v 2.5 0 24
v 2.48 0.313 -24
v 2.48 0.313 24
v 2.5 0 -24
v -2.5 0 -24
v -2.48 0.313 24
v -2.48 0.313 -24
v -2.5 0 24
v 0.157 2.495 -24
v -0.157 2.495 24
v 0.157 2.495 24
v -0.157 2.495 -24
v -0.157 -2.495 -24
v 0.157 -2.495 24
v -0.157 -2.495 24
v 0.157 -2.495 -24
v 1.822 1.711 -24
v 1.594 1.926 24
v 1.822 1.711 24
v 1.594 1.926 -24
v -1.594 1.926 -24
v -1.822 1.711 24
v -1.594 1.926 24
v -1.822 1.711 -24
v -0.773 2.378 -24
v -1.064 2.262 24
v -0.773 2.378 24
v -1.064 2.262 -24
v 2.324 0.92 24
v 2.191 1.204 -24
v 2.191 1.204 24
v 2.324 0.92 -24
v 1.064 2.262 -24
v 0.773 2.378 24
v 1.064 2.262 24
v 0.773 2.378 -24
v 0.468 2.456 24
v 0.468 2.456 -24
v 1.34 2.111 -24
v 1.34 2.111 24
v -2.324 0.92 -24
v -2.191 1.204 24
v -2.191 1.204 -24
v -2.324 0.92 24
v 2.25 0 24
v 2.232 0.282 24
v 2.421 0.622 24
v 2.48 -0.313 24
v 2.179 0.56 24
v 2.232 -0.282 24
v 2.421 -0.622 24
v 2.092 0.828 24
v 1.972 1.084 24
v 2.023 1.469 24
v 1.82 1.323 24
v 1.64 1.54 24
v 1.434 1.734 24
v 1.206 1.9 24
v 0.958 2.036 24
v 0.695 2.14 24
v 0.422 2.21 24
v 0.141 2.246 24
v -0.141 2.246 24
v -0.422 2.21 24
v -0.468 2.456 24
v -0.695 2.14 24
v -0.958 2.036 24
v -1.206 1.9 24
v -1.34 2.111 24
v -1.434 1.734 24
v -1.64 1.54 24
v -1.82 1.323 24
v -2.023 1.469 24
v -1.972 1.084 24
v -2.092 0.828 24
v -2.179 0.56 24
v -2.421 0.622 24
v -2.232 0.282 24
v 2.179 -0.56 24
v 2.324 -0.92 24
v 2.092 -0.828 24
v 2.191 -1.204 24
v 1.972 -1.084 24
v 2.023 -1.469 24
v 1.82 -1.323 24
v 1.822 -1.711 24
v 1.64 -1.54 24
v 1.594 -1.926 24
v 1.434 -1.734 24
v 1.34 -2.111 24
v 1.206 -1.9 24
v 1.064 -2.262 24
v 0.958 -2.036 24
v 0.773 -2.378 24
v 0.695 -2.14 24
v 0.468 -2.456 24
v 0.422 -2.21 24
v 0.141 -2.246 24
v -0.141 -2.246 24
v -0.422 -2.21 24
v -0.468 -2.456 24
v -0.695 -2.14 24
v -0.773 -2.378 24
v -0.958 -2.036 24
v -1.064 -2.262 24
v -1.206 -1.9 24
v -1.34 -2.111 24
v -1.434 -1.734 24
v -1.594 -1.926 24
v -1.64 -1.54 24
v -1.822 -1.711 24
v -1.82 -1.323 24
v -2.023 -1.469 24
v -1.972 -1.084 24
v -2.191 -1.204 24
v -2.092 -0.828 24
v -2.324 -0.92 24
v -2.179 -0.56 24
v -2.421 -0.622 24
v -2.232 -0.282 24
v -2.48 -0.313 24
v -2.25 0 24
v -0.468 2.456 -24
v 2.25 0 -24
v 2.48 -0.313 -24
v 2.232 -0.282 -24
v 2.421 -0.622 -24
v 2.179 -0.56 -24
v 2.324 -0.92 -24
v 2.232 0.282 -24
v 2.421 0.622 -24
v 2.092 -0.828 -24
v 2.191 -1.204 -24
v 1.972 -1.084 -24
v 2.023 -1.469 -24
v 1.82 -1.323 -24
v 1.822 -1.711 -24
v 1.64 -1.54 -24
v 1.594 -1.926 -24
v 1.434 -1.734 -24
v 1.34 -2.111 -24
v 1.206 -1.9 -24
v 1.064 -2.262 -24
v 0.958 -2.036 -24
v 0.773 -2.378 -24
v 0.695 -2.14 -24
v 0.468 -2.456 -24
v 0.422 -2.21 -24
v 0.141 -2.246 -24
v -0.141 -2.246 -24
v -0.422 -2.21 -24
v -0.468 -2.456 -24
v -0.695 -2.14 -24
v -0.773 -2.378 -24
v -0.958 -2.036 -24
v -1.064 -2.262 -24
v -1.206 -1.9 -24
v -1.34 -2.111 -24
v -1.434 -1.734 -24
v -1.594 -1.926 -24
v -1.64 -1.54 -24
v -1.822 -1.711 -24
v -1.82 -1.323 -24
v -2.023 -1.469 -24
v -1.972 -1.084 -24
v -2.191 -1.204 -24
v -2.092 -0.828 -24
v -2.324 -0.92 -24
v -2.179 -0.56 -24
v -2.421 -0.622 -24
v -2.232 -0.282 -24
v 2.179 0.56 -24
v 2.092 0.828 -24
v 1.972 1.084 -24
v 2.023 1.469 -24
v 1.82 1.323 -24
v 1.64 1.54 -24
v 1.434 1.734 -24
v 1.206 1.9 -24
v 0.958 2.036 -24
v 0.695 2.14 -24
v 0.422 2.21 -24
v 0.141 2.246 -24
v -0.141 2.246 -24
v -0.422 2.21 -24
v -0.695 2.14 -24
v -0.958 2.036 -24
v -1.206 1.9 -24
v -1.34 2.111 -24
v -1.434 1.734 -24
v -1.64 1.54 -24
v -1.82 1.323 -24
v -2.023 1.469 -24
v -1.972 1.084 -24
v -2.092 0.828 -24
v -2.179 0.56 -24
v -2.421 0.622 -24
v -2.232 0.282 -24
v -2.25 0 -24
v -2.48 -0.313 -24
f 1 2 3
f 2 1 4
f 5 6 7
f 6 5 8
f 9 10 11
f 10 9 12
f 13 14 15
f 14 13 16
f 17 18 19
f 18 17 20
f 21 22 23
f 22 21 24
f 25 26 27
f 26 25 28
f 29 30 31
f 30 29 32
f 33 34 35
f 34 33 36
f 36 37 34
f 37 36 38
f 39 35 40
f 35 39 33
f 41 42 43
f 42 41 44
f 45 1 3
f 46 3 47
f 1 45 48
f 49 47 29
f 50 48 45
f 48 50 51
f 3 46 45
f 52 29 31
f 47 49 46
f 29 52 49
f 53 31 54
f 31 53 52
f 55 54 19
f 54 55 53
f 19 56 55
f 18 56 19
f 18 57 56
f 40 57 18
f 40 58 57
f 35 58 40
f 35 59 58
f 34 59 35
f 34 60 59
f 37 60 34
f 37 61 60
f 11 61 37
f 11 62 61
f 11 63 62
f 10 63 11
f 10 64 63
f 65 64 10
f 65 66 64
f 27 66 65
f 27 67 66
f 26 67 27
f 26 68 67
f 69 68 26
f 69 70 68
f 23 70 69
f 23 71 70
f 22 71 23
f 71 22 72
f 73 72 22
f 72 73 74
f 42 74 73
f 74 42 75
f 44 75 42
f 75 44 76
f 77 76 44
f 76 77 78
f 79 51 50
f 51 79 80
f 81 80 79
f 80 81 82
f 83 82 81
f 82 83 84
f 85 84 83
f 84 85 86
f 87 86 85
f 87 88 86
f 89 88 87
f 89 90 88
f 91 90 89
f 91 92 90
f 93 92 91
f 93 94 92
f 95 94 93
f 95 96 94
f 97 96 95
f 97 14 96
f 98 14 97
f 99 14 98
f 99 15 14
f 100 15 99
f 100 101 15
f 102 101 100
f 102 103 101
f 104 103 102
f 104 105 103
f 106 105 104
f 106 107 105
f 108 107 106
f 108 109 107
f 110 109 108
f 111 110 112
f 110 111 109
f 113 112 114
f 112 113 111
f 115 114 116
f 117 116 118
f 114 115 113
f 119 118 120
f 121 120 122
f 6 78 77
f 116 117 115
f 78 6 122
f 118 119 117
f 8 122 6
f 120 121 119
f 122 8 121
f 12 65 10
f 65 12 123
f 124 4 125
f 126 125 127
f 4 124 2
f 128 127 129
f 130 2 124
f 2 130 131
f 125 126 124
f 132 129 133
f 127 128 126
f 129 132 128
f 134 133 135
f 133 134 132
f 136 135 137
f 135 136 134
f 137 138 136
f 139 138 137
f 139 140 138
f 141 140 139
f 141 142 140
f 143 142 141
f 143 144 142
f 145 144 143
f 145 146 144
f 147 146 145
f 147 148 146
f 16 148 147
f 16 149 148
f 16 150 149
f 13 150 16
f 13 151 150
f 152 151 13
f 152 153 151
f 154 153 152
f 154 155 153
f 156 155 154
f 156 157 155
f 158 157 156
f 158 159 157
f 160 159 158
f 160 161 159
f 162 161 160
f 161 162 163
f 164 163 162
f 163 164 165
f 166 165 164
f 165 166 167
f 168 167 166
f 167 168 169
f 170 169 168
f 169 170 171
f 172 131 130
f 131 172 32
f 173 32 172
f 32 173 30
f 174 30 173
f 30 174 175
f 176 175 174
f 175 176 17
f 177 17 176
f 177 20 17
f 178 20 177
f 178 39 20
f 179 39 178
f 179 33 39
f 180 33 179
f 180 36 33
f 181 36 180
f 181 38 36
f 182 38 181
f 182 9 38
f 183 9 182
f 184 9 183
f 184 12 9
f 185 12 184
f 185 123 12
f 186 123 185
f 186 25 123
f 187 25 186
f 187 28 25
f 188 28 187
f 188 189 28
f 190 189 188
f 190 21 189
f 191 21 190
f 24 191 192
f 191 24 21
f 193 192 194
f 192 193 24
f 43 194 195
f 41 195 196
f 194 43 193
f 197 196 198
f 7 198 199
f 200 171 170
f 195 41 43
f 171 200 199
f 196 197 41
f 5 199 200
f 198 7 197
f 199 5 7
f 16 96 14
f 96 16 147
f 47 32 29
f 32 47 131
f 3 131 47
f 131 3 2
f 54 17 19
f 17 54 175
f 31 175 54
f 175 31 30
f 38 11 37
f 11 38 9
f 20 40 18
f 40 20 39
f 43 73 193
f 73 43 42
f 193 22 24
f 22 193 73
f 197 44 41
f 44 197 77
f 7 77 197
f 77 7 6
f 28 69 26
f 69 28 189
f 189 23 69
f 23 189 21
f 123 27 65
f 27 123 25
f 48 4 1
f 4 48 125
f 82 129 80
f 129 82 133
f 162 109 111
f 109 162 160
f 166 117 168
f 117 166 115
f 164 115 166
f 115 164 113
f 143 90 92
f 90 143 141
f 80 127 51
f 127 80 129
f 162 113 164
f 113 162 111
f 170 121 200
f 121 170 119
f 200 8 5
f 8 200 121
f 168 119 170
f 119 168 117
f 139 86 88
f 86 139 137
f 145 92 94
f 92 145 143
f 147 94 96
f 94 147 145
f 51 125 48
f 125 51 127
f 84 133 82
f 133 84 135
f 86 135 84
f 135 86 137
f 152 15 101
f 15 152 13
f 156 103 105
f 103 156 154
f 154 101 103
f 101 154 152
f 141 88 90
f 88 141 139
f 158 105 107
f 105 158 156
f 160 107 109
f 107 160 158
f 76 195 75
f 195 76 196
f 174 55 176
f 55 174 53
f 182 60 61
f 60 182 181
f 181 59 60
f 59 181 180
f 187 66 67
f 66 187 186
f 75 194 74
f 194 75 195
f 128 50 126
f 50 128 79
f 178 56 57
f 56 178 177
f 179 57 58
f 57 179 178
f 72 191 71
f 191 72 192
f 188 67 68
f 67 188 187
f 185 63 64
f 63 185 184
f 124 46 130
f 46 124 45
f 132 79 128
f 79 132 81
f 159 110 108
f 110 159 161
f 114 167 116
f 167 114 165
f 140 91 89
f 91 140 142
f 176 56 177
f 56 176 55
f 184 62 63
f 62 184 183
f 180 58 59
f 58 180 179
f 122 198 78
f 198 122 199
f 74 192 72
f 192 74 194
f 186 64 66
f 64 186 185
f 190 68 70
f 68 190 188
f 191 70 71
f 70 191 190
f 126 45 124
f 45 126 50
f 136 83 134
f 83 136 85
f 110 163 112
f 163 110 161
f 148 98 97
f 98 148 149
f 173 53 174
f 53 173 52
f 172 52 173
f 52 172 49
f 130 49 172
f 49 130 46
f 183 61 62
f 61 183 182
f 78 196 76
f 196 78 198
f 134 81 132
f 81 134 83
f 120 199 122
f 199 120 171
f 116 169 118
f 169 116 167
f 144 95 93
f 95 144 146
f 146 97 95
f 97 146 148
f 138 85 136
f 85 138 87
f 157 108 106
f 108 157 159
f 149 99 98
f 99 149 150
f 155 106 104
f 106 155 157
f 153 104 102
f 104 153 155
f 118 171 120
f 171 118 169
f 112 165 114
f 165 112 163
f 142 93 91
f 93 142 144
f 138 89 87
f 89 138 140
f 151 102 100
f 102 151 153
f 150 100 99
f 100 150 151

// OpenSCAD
$fn = 50;


difference() {
	union() {
		translate(v = [0, 0, -24.0000000000]) {
			cylinder(h = 48, r = 2.5000000000);
		}
	}
	union() {
		translate(v = [0, 0, -100.0000000000]) {
			cylinder(h = 200, r = 2.2500000000);
		}
	}
}
